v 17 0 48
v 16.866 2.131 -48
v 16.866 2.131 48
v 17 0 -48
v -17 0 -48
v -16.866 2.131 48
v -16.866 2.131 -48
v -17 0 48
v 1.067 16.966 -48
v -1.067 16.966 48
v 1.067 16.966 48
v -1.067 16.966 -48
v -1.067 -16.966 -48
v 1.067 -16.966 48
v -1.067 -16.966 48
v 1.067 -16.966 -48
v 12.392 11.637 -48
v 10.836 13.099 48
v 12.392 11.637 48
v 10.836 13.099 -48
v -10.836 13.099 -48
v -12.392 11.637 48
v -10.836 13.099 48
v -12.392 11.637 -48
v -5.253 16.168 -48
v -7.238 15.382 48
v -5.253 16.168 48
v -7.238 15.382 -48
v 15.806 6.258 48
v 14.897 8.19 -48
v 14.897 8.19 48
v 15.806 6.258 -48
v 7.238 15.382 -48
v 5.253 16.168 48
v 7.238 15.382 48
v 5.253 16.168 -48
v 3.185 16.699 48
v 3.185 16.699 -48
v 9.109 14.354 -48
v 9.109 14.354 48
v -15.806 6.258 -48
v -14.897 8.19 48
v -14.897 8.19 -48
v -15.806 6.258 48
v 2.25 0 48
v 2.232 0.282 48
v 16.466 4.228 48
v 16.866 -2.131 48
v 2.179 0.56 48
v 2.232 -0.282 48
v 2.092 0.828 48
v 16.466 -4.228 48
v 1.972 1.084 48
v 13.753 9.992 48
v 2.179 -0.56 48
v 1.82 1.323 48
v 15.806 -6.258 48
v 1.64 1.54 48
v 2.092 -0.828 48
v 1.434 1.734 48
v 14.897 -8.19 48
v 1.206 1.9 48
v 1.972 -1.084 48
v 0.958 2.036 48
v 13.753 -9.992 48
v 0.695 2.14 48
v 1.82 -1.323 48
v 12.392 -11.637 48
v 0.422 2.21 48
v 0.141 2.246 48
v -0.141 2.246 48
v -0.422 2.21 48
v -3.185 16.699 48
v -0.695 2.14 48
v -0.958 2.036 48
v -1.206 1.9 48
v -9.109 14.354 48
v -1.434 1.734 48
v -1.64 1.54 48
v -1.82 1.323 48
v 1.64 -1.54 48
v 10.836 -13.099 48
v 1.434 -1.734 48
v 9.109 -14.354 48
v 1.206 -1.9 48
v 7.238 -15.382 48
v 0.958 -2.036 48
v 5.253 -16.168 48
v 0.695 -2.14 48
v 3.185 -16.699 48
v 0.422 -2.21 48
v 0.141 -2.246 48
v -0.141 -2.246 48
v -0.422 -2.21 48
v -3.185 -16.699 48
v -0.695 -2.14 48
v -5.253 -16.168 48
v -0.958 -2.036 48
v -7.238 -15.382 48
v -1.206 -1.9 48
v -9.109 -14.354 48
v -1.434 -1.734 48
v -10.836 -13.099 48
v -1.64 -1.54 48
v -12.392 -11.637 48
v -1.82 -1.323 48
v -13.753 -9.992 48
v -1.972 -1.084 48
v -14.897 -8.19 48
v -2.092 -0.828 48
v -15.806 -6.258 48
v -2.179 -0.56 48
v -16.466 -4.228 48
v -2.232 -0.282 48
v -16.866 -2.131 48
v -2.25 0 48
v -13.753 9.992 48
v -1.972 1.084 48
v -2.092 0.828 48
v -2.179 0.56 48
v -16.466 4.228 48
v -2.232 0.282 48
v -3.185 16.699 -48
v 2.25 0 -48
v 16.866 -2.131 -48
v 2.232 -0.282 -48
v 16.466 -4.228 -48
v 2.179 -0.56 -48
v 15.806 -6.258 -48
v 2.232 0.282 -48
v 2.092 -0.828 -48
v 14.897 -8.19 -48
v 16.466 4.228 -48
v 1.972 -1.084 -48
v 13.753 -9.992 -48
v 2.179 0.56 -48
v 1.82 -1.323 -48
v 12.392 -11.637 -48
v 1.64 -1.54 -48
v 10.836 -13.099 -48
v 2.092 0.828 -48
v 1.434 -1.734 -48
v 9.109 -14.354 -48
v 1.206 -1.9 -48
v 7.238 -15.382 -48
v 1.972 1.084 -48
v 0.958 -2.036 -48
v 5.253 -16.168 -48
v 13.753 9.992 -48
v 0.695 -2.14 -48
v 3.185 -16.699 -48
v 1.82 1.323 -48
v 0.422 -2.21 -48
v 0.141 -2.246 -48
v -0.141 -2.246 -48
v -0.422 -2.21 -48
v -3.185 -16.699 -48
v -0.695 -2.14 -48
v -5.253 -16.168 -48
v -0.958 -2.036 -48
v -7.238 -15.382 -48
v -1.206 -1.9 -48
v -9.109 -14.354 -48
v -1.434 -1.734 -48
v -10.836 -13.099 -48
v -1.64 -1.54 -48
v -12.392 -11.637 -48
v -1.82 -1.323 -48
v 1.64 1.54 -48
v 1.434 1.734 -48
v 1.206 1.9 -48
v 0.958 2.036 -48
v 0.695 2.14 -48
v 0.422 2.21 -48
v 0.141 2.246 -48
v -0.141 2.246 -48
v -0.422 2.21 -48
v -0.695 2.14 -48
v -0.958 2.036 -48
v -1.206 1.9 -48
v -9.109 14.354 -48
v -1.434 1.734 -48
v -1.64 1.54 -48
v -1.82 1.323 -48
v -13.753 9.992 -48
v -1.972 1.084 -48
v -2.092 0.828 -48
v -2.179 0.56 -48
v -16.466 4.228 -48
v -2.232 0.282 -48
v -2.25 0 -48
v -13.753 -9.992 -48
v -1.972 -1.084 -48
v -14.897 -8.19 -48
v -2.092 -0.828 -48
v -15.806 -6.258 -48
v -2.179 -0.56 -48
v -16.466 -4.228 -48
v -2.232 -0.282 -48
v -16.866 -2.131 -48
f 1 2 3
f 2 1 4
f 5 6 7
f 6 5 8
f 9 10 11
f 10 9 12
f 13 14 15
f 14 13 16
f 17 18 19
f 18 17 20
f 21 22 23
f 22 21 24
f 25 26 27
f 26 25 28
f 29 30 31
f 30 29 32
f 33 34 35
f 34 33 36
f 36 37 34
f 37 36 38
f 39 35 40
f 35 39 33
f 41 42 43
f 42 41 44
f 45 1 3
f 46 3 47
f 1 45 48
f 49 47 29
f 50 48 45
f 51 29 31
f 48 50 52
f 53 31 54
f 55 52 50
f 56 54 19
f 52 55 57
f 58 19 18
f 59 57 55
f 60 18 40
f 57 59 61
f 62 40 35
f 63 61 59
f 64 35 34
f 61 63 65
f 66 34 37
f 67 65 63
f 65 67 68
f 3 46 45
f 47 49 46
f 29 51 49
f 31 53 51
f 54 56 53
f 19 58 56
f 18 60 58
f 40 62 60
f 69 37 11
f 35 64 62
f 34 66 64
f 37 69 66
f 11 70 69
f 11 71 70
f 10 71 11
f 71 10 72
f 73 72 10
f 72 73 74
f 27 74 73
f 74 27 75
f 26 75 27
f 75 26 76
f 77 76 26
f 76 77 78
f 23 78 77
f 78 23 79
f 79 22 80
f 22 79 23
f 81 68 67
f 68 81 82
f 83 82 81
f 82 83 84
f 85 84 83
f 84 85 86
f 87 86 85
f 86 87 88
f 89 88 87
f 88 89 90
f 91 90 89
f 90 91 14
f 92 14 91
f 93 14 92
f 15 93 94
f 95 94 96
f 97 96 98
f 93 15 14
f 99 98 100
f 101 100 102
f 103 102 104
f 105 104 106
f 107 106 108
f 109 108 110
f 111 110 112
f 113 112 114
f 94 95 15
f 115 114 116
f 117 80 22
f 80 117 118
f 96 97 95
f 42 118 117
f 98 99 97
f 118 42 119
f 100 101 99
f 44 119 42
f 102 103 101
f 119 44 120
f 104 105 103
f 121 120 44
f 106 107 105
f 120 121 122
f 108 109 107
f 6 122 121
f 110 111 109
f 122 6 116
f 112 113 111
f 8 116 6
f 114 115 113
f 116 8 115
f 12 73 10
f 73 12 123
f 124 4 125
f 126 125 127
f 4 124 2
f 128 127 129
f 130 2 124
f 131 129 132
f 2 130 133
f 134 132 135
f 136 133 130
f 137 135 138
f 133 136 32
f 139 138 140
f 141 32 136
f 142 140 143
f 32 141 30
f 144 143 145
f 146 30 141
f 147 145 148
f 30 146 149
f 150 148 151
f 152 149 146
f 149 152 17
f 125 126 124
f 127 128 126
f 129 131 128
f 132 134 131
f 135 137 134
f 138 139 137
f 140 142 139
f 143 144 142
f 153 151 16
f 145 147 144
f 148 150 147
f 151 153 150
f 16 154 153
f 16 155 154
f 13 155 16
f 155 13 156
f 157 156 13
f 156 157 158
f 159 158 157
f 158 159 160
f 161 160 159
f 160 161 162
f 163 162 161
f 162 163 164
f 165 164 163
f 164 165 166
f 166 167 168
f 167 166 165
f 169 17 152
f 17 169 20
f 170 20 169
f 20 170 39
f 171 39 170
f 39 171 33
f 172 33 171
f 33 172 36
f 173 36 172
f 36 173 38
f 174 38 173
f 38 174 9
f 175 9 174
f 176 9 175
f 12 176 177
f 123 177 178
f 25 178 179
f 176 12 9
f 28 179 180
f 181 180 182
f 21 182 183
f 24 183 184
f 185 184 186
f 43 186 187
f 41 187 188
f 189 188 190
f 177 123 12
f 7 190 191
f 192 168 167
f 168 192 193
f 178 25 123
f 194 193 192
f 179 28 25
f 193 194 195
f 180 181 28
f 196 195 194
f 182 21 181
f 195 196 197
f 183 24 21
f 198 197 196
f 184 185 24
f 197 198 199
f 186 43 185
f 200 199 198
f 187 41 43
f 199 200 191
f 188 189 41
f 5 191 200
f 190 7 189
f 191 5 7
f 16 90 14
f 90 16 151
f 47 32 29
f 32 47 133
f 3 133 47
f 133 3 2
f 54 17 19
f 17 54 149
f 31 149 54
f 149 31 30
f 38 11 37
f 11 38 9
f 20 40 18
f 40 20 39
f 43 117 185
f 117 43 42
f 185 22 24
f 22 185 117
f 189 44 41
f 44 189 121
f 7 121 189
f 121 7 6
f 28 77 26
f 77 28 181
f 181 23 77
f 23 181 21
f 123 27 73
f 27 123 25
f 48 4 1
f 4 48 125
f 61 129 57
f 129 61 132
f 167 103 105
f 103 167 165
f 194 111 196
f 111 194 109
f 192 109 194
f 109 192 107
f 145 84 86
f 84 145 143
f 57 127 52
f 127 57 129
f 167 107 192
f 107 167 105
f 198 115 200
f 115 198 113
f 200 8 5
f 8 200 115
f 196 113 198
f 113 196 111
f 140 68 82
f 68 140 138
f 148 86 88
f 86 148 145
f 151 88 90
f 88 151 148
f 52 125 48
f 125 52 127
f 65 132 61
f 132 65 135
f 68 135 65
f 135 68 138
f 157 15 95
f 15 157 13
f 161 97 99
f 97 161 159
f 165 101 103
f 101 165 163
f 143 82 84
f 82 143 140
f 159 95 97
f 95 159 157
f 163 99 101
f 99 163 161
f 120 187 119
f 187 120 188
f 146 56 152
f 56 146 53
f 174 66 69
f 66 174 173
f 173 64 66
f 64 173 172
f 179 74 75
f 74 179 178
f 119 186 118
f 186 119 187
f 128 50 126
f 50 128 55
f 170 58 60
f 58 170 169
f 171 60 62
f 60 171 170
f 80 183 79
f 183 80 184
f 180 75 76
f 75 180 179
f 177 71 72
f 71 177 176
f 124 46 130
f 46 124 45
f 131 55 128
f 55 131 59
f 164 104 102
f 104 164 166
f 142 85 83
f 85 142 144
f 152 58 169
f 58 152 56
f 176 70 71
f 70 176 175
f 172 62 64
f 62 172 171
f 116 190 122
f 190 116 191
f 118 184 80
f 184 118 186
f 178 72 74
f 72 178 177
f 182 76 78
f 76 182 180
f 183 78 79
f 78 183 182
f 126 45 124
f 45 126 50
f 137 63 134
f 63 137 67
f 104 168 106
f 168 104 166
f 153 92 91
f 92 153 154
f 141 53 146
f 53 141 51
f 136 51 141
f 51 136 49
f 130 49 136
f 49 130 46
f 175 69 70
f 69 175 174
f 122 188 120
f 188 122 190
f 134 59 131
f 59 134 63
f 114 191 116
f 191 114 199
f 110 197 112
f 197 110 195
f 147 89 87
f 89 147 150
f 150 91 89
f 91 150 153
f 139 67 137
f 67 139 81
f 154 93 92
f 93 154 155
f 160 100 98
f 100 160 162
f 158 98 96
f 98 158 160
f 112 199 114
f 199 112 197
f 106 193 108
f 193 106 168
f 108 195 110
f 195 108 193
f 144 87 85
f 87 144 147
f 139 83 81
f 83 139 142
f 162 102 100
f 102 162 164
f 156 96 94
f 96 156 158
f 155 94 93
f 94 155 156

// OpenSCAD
$fn = 50;


difference() {
	union() {
		translate(v = [0, 0, -48.0000000000]) {
			cylinder(h = 96, r = 17.0000000000);
		}
	}
	union() {
		translate(v = [0, 0, -100.0000000000]) {
			cylinder(h = 200, r = 2.2500000000);
		}
	}
}
